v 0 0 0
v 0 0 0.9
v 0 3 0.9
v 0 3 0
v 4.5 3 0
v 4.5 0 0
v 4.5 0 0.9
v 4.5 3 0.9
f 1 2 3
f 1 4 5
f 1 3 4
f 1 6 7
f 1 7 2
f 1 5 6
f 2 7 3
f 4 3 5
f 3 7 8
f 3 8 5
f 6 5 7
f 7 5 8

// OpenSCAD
/* Warning, this is a very basic generator with a lot of approximation 
input data : [VDFN, QCB, 4.5x3x0.9mm, 14, , A, C04-21362A]
generated by com.zoubworld.electronics.cad.model3d.Basic
Date : Sun Feb 15 10:50:49 CET 2026
*/

//body
color("black")
translate([0,0,0])
cube([4.5,3.0,0.9], center=false);
